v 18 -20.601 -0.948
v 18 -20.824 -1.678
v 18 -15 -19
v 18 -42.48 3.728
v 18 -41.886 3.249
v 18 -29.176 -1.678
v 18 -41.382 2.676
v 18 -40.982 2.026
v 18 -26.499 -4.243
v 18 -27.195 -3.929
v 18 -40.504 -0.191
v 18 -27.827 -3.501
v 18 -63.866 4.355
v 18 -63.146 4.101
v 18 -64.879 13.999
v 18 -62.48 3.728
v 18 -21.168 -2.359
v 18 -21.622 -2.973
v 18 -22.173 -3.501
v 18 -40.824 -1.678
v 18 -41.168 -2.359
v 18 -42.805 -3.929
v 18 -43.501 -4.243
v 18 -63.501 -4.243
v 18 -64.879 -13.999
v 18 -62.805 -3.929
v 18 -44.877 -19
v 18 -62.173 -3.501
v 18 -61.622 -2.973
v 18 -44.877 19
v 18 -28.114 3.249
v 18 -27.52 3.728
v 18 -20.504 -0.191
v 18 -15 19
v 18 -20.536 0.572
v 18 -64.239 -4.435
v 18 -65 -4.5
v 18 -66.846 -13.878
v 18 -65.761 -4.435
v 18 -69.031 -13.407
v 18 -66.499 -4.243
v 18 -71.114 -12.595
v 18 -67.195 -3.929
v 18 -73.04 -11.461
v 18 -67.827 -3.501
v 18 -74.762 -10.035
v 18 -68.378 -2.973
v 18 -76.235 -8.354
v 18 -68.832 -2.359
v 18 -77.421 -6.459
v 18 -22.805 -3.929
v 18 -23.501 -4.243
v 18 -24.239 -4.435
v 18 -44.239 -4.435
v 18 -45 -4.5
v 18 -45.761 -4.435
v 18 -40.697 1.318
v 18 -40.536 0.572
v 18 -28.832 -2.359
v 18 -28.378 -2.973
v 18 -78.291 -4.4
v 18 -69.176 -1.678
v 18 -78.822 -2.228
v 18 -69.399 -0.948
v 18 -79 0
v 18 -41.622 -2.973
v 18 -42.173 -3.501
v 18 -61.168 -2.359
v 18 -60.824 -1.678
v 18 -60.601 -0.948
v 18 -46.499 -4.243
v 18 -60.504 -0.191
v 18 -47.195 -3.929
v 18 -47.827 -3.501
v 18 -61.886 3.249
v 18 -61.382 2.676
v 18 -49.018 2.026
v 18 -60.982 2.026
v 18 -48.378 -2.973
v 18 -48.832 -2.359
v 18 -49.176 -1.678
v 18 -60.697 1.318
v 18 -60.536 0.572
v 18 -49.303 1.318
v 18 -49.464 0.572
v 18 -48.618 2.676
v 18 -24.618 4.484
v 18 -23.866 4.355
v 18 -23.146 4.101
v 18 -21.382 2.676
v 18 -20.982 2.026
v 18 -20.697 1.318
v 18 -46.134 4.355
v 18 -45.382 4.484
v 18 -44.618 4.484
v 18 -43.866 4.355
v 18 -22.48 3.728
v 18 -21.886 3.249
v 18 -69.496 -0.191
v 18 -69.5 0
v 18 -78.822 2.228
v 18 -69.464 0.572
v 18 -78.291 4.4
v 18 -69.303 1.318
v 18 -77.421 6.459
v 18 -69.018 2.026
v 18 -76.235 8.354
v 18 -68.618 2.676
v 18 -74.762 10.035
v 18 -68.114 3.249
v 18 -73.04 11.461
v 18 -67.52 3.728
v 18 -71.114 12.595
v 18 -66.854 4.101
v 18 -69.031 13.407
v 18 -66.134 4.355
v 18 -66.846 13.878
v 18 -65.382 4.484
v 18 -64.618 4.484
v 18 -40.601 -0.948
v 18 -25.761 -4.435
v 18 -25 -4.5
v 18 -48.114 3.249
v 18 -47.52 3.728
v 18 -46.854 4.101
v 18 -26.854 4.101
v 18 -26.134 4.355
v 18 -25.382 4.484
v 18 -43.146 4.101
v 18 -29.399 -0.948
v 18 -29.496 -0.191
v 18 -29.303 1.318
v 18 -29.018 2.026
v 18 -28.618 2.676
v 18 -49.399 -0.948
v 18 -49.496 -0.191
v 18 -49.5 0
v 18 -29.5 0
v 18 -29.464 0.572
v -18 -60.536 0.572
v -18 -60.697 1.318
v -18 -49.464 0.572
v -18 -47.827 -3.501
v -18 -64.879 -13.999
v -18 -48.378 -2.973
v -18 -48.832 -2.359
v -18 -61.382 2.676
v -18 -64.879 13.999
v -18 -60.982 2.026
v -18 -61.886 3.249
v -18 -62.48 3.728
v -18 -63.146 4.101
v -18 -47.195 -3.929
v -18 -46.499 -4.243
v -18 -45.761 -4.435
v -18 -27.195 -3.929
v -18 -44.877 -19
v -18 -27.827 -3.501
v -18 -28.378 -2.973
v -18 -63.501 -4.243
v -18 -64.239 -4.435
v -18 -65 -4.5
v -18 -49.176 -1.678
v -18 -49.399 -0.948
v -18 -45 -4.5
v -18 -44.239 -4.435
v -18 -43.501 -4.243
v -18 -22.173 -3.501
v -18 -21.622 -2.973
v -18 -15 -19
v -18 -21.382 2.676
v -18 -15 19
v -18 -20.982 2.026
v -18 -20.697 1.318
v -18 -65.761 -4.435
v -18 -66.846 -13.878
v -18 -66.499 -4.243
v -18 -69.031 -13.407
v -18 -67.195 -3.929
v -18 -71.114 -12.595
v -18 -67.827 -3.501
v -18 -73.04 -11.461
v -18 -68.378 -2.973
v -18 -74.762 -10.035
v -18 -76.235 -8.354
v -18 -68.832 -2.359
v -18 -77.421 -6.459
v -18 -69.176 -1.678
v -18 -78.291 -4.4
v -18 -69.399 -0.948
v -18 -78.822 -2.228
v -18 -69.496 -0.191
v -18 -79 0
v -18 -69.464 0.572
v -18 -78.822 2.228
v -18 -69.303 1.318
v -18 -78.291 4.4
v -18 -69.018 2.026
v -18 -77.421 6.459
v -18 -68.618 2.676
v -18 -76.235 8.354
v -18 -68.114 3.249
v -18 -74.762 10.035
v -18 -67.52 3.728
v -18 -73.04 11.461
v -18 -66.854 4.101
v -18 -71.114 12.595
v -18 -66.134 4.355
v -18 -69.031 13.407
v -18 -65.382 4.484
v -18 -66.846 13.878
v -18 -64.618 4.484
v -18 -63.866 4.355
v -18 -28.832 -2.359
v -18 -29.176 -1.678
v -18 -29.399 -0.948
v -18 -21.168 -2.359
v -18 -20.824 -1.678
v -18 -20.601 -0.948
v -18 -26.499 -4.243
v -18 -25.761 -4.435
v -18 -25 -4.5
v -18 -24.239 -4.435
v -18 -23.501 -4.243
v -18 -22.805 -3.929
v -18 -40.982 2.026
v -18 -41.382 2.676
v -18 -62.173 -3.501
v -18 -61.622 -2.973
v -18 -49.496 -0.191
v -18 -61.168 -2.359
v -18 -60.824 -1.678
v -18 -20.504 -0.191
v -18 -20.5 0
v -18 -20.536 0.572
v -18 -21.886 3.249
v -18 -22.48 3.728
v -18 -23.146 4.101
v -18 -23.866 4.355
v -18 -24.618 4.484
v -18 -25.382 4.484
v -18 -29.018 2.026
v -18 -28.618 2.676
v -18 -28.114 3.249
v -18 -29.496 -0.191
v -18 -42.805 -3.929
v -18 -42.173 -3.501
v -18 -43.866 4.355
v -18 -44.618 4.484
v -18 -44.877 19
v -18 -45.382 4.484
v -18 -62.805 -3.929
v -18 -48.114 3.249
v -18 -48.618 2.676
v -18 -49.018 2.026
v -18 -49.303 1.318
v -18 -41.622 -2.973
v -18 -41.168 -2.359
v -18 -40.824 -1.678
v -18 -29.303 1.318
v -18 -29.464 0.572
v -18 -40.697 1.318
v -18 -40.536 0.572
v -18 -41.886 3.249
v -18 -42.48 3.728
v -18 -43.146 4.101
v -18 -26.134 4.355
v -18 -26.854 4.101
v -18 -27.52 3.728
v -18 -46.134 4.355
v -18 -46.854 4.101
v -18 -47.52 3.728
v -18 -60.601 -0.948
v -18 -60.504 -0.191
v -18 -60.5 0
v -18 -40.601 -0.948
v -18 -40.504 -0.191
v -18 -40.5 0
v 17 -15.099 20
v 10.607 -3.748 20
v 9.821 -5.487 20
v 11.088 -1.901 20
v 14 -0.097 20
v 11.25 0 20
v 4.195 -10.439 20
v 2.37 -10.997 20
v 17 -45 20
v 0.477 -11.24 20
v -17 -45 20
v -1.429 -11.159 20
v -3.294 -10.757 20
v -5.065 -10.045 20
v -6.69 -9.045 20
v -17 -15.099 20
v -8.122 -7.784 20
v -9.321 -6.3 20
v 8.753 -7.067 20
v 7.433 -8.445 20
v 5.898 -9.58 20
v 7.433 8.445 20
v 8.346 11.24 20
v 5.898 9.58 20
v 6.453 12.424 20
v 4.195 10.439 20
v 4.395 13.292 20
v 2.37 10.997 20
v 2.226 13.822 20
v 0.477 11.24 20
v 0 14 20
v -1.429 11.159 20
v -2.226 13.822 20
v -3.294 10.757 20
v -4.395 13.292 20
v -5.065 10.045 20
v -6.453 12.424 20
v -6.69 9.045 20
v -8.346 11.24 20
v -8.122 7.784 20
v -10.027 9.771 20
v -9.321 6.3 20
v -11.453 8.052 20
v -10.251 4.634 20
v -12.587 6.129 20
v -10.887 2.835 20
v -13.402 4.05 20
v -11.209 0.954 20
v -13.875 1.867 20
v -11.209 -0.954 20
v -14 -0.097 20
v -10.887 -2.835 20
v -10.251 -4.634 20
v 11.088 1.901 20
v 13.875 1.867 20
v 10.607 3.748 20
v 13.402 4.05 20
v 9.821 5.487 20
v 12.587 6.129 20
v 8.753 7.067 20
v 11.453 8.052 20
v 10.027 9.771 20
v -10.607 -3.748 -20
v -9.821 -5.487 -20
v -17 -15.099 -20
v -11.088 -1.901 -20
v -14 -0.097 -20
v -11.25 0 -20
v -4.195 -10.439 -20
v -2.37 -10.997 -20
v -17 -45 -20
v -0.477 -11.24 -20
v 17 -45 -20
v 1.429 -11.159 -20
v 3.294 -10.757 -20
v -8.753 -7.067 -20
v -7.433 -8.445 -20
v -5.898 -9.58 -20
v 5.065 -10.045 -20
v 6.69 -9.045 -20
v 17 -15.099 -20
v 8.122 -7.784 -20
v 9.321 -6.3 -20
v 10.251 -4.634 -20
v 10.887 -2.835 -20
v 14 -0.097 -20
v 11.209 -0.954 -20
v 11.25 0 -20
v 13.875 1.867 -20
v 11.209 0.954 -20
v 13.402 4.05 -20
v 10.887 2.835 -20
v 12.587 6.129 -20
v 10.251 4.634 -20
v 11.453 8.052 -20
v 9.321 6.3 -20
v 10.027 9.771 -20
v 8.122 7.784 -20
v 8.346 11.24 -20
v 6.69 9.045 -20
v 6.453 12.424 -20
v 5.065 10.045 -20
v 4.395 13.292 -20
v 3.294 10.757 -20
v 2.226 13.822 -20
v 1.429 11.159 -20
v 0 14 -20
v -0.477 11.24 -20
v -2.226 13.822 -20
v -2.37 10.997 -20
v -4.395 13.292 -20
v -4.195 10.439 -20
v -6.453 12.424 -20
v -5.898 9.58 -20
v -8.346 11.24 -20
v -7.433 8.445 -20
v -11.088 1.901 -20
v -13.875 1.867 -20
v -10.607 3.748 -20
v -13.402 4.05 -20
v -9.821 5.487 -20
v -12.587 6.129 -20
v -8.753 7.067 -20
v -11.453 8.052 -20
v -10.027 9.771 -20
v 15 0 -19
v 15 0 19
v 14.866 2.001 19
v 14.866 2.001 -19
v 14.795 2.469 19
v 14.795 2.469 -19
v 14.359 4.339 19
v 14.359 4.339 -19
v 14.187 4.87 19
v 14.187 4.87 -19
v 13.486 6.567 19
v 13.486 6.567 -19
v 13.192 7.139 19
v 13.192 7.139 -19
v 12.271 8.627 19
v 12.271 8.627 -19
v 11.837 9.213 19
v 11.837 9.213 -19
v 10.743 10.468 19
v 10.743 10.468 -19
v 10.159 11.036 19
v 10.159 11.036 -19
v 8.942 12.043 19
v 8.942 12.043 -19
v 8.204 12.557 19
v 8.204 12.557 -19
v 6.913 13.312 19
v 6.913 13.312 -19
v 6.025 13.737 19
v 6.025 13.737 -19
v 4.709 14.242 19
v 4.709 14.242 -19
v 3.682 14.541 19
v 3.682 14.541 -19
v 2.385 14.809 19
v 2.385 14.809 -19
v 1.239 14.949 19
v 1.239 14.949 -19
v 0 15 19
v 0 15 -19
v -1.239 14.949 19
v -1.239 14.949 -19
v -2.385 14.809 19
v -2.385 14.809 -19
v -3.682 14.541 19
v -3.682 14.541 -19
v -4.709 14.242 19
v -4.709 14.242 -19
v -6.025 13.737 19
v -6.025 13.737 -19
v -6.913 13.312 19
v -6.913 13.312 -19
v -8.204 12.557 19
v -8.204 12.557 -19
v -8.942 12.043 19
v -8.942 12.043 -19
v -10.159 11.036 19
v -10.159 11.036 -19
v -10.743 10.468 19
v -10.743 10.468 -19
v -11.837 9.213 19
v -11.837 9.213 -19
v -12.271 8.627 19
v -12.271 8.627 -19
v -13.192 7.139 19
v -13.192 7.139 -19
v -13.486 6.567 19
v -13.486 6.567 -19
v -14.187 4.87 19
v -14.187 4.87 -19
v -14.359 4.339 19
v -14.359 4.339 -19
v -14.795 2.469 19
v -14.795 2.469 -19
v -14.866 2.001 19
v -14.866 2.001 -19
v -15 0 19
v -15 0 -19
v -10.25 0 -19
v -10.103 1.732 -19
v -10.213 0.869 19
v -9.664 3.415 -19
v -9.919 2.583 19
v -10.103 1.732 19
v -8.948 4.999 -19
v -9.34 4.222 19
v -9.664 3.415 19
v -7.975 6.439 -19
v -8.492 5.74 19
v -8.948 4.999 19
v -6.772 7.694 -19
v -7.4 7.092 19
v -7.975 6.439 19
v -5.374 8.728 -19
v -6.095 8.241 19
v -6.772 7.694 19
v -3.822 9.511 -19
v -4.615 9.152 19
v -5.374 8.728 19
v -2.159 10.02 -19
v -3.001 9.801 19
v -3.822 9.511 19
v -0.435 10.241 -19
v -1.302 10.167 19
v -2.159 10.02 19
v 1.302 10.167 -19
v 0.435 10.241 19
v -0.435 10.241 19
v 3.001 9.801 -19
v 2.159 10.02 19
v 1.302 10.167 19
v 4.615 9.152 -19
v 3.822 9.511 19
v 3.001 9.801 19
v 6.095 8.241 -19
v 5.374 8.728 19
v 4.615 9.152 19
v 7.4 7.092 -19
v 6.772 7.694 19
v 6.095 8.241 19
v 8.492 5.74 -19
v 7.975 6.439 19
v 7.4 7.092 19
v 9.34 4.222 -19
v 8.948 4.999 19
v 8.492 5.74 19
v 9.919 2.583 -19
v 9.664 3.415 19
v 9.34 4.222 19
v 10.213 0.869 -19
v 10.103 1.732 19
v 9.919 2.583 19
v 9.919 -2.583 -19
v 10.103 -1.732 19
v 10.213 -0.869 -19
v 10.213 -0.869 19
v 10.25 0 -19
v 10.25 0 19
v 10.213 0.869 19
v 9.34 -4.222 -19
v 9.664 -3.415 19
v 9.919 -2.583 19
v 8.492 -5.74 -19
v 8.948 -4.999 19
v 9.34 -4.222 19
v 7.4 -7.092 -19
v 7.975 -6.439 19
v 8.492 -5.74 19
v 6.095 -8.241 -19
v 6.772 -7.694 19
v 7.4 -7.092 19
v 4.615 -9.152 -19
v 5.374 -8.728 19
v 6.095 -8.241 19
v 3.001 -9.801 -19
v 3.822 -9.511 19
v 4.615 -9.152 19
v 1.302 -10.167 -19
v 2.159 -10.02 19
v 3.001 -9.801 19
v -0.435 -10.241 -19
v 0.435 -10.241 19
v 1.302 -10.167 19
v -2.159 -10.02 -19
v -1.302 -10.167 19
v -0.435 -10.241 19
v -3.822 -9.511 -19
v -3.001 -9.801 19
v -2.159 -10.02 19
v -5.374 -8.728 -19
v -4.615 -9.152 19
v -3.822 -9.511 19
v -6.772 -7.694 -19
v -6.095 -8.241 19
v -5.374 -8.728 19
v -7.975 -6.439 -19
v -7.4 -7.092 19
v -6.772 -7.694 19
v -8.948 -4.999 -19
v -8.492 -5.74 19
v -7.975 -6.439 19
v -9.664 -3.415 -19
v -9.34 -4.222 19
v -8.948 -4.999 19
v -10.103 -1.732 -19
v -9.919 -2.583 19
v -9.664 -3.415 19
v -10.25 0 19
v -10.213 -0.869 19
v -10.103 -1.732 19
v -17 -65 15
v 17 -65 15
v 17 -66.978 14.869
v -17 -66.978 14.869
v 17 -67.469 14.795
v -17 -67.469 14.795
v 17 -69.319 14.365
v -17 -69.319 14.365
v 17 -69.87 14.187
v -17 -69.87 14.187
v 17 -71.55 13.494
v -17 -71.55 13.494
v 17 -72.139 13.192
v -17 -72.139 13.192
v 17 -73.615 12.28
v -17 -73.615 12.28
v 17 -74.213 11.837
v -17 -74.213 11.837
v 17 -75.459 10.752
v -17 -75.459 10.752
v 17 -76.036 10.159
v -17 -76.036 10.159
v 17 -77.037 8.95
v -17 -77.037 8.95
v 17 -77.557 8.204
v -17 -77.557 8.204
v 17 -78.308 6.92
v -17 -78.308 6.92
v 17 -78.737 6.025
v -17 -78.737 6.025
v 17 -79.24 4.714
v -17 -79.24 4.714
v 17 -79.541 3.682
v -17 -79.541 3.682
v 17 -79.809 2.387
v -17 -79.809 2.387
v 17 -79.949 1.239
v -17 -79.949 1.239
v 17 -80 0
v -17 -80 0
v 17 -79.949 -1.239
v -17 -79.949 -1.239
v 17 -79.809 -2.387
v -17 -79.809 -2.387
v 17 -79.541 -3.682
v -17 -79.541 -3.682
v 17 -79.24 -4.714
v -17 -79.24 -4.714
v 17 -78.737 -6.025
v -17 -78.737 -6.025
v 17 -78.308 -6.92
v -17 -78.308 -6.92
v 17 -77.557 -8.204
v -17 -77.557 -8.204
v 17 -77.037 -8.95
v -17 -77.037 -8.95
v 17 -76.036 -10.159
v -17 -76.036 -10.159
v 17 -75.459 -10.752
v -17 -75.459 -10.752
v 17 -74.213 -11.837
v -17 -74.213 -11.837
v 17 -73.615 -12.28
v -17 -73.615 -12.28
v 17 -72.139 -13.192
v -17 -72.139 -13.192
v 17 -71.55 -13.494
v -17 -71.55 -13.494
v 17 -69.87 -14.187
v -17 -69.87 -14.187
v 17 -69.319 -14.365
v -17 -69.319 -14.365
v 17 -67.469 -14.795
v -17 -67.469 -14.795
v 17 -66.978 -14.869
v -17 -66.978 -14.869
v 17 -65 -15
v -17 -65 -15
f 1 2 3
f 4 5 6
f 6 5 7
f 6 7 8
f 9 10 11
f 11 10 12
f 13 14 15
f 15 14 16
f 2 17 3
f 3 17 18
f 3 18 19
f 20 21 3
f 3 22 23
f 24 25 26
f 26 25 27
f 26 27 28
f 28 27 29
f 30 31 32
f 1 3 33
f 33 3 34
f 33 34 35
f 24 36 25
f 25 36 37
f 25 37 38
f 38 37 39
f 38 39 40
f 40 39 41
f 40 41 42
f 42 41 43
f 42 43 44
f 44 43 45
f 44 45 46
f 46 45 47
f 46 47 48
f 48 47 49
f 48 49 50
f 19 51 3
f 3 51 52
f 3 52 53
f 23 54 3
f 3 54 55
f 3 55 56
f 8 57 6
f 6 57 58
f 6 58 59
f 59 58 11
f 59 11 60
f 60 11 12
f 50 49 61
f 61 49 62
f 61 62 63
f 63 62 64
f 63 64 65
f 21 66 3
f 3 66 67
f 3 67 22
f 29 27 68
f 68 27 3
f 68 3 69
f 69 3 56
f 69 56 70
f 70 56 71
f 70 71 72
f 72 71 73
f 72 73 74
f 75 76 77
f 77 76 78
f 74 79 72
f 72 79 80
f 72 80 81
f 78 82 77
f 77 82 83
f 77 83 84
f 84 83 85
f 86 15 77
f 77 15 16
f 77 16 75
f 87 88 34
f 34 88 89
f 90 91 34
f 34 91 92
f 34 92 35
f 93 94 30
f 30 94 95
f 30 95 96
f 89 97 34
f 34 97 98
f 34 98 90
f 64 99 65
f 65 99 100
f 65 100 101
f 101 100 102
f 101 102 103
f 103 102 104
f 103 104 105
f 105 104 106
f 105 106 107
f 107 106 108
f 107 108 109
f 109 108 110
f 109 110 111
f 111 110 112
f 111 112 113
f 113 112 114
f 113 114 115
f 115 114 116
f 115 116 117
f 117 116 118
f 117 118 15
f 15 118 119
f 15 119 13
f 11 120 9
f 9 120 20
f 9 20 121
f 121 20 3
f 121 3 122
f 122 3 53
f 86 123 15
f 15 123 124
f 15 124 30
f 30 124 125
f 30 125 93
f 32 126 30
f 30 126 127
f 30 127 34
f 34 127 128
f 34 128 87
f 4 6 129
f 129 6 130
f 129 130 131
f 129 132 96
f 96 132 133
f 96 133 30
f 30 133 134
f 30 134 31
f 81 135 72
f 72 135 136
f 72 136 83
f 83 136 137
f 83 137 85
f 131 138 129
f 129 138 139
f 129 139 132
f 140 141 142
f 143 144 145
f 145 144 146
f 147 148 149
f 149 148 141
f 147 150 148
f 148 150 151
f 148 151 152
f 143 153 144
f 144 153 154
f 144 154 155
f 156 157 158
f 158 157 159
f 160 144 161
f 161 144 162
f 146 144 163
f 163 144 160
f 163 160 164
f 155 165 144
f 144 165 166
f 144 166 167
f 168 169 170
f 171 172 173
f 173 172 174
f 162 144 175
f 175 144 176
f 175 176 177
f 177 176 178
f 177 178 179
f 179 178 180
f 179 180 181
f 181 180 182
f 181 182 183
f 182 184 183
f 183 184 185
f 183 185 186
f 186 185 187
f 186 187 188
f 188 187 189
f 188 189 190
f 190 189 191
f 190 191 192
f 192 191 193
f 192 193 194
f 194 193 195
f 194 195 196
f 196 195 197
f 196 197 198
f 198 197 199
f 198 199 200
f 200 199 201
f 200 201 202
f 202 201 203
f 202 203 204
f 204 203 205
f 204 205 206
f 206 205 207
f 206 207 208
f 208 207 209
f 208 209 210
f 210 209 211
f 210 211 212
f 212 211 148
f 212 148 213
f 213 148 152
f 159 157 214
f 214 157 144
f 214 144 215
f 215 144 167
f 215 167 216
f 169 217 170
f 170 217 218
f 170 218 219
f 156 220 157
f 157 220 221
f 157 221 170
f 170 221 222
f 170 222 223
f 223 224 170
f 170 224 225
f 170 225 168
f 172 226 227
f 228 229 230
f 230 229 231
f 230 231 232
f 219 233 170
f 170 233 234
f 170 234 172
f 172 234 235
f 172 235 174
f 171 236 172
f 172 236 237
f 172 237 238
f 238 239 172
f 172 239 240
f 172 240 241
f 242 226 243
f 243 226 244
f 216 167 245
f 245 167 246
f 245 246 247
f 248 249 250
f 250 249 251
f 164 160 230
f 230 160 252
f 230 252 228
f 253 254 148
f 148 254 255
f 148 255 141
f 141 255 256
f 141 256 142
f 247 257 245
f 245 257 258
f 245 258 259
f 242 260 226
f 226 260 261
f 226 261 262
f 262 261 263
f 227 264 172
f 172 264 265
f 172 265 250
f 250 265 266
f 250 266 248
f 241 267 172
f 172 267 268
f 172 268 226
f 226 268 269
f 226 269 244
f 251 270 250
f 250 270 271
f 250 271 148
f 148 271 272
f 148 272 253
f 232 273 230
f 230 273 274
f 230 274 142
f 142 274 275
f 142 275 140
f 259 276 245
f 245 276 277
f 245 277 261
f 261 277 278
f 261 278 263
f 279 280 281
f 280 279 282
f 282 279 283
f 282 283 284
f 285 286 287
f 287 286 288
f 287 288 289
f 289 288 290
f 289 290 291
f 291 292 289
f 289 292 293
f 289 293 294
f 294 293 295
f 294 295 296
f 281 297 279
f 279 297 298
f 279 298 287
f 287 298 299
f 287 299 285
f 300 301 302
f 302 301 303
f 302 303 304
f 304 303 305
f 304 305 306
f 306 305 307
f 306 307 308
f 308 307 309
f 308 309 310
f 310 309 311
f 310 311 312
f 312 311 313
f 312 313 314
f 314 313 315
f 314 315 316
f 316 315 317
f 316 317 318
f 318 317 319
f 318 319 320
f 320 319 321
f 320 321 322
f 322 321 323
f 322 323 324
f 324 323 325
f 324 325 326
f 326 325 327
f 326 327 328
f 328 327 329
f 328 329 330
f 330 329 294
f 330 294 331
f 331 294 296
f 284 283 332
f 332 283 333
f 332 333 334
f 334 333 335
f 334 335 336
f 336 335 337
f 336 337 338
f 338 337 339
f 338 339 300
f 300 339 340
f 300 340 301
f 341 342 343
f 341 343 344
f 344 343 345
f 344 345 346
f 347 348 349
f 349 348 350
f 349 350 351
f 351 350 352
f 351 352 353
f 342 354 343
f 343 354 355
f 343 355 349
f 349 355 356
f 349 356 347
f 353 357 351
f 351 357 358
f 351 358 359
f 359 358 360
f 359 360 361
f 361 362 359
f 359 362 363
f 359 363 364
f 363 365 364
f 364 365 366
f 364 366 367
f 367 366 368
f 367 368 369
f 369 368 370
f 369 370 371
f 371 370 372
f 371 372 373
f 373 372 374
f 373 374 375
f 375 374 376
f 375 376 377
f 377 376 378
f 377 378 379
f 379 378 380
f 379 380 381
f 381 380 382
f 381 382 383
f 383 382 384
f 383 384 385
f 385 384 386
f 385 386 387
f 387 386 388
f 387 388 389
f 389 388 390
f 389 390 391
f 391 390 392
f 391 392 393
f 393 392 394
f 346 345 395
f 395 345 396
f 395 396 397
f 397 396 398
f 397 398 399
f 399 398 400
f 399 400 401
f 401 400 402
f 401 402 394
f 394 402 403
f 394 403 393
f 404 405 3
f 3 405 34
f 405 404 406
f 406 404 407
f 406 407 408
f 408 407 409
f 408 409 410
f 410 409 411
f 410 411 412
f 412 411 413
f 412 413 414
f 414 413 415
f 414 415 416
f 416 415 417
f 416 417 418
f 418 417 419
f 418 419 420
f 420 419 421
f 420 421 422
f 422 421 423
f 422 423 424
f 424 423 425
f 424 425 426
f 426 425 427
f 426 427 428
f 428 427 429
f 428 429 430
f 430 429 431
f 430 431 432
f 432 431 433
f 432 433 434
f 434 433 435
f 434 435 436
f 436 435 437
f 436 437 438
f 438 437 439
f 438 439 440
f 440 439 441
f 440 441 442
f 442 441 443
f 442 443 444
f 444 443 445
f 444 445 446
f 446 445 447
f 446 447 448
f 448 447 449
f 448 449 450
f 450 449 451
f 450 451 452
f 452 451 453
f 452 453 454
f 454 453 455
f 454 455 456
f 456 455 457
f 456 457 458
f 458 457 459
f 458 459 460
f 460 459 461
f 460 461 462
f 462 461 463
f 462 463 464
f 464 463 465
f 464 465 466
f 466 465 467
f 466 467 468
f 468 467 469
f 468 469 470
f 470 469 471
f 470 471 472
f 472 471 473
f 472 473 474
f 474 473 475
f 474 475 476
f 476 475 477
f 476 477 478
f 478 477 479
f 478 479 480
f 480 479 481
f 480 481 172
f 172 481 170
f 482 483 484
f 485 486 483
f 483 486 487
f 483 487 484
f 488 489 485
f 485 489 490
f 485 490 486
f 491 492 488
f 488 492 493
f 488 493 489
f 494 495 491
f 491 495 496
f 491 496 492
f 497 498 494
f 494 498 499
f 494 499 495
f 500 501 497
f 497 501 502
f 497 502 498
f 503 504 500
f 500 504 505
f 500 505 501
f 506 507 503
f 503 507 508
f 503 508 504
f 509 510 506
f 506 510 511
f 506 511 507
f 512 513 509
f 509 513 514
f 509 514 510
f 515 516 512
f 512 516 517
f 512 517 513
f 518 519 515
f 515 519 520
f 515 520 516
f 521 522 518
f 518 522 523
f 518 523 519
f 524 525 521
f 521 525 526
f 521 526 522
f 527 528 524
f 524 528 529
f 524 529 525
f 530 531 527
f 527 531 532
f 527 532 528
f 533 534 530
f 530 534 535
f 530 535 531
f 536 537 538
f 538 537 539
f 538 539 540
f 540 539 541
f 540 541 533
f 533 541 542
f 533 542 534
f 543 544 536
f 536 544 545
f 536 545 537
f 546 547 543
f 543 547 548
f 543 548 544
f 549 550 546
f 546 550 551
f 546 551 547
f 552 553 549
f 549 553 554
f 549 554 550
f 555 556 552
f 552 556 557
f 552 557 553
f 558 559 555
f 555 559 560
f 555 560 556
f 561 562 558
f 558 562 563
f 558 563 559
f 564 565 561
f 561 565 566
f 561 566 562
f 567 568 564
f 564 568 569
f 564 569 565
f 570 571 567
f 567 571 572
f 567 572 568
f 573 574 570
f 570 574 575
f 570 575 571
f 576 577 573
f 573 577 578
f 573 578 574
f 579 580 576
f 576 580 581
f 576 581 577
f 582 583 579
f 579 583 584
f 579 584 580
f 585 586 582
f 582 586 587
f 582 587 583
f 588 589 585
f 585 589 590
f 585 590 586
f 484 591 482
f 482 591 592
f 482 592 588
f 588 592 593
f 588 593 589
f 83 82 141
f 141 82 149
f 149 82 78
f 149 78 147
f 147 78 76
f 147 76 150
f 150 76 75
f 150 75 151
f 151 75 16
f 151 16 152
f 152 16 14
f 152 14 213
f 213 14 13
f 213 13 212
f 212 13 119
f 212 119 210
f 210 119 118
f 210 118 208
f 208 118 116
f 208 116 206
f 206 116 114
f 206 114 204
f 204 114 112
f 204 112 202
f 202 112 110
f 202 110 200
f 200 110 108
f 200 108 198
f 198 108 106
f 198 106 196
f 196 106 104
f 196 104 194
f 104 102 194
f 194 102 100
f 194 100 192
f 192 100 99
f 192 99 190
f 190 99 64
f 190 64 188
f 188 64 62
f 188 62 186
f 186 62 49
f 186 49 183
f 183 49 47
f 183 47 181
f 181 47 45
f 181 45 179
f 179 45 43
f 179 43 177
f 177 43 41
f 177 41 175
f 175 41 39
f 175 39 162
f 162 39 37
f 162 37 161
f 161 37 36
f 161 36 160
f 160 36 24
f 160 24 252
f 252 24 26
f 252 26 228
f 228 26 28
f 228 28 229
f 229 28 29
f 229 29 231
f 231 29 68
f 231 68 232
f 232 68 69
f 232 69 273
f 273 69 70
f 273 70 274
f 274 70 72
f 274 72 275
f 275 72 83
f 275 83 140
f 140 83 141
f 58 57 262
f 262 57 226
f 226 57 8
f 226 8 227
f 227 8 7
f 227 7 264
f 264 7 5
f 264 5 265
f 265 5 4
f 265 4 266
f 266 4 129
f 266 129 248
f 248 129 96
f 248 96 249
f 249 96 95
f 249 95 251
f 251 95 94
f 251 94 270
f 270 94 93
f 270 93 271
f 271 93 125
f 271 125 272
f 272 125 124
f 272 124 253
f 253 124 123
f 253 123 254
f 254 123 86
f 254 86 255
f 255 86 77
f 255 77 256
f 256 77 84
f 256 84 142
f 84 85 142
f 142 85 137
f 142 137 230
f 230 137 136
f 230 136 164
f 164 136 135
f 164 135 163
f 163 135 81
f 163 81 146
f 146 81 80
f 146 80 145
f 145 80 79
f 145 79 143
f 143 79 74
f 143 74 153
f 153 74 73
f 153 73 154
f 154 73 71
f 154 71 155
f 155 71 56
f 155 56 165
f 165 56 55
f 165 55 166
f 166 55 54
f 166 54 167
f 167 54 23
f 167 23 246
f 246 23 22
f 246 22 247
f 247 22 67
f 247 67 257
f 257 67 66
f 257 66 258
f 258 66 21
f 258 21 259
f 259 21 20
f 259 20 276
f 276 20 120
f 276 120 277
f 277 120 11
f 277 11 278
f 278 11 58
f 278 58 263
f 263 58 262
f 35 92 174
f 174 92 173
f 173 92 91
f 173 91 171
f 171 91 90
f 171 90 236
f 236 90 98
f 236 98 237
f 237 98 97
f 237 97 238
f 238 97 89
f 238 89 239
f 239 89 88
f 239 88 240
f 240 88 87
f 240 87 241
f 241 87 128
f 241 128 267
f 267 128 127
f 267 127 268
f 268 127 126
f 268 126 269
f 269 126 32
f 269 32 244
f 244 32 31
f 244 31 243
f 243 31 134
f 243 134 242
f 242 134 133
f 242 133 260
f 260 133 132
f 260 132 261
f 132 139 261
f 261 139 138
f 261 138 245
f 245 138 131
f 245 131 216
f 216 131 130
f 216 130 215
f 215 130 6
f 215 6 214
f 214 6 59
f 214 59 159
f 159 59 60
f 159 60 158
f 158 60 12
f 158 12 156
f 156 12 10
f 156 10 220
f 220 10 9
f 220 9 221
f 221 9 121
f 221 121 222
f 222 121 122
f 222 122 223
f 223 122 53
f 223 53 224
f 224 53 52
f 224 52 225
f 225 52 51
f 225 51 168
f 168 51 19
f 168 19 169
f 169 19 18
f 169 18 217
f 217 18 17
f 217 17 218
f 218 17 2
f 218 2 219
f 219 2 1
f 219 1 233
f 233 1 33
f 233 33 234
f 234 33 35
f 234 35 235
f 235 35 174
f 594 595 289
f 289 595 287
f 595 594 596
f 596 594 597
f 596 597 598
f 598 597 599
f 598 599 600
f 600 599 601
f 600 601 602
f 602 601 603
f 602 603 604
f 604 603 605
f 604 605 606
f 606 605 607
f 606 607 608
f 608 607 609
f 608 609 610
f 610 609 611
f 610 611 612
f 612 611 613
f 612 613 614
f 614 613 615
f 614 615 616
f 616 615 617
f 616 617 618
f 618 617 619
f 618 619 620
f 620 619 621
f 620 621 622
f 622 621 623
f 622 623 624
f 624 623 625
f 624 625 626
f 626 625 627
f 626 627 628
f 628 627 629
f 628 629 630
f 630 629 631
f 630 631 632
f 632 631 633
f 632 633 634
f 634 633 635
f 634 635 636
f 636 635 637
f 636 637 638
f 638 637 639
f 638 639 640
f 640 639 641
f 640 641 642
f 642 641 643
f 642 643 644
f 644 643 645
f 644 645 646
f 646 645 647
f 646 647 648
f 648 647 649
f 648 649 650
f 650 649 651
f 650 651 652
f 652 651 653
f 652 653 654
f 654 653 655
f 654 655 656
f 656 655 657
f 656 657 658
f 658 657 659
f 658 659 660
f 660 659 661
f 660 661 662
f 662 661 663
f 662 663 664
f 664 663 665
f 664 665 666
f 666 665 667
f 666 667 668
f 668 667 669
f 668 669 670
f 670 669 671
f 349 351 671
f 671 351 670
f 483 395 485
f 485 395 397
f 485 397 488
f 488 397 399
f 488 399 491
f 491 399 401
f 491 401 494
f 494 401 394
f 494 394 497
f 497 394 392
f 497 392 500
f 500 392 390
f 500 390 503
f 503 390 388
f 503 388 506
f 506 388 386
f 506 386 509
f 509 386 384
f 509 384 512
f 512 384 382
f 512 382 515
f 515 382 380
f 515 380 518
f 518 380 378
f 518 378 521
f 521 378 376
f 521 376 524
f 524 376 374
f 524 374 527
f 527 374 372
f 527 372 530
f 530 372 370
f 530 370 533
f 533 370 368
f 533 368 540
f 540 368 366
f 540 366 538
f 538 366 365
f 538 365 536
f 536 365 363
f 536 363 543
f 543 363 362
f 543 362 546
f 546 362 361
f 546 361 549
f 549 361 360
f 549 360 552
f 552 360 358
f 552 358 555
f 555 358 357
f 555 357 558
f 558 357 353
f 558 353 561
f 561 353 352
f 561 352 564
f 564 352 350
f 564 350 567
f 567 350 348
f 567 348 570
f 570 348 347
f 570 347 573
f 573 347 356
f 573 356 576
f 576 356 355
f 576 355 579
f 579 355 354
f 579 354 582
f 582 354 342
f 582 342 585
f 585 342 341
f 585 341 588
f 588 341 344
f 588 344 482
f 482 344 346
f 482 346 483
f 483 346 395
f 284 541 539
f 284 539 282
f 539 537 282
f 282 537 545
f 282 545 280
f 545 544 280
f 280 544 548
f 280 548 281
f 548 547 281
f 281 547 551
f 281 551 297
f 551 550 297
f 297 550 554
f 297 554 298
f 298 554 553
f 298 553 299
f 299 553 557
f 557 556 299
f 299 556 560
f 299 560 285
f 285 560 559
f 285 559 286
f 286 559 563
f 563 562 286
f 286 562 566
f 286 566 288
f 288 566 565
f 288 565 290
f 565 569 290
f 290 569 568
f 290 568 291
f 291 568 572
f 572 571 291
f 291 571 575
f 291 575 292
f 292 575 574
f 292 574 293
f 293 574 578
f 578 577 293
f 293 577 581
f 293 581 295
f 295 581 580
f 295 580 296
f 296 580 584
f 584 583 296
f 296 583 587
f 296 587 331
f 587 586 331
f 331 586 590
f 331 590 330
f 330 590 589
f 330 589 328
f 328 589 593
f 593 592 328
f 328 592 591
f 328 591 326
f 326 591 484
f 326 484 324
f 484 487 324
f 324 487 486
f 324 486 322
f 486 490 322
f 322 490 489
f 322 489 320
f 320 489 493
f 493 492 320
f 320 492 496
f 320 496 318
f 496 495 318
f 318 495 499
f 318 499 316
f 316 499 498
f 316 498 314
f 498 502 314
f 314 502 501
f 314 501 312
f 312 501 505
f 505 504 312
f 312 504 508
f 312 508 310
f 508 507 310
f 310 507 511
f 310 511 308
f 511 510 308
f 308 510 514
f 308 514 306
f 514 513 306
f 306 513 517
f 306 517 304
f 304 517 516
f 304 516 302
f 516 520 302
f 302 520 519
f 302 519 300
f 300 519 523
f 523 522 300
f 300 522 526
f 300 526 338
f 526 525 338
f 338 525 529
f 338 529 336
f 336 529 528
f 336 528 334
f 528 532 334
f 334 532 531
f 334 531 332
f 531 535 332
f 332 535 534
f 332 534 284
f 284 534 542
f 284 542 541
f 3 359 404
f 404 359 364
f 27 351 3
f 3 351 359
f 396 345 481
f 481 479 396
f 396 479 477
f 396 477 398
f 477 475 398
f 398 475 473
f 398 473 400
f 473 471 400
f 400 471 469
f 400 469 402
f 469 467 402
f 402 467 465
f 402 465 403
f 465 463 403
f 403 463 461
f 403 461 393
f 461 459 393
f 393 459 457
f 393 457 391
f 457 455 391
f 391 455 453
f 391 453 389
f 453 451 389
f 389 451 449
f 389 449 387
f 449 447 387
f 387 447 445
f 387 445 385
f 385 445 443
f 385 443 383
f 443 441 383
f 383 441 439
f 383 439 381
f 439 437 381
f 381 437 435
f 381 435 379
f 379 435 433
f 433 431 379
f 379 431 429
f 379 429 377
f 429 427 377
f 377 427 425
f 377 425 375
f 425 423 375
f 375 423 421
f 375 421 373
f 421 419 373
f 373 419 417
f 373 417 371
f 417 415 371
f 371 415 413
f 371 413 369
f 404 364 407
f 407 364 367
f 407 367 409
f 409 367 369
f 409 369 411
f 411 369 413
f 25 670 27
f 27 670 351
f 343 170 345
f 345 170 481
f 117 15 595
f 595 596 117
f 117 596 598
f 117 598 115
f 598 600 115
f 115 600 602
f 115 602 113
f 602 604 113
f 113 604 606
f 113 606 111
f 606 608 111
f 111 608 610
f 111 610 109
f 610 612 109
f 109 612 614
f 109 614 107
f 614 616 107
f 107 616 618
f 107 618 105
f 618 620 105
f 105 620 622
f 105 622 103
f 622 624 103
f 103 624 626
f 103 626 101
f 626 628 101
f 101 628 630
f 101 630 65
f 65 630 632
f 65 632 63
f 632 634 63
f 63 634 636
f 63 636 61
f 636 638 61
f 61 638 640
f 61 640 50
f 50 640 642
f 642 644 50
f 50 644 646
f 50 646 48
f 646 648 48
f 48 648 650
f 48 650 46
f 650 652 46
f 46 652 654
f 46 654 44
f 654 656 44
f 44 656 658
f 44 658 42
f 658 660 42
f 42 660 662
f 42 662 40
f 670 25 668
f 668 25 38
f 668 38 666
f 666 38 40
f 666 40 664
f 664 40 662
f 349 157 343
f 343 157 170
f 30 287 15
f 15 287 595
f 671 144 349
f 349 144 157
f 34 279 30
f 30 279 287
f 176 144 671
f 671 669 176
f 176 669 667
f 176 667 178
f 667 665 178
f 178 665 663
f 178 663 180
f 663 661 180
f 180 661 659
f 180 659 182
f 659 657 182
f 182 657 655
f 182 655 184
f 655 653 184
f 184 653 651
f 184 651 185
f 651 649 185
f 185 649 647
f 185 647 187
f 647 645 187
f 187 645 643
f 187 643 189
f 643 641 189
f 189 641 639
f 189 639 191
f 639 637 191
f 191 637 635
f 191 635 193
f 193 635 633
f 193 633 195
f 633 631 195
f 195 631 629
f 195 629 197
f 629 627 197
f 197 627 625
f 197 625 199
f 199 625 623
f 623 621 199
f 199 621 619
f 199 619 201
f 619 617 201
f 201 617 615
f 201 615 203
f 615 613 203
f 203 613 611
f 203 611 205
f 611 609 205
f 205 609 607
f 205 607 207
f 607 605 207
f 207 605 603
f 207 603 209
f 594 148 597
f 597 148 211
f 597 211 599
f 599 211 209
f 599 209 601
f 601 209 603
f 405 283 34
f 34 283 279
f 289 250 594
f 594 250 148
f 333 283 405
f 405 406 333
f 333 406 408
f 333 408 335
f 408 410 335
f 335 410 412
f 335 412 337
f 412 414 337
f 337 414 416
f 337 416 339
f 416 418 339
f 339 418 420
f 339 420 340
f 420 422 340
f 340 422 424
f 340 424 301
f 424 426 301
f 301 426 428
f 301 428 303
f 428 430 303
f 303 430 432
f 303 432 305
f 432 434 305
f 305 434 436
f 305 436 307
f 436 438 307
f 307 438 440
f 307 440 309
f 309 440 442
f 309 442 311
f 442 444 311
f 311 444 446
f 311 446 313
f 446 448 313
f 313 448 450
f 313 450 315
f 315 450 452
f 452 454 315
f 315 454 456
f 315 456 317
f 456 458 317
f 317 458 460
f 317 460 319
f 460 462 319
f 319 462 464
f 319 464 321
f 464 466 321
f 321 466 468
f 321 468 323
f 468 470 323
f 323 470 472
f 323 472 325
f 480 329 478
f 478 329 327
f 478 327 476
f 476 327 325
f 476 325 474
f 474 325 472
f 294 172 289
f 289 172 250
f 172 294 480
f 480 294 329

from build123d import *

# Parameters (mm, degrees)
SKETCH_1_R               = 10.25
EXTRUDE_1_DEPTH          = 20
SKETCH_2_R               = 4.5
CUT_EXTRUDE_1_DEPTH      = 20
CUT_EXTRUDE_2_DEPTH      = 1
CUT_EXTRUDE_2_DEPTH_BACK = 37
CHAMFER_1_SIZE           = 1


with BuildPart() as part:
    # 草图1 → 凸台-拉伸1 (new body, symmetric)
    with BuildSketch(Plane.XY):
        with BuildLine():
            Line((0, -80), (18, -80))
            Line((18, -80), (18, -15))
            Line((18, -15), (15, 0))
            ThreePointArc((15, 0), (0, 15), (-15, 0))
            Line((-15, 0), (-18, -15))
            Line((-18, -15), (-18, -80))
            Line((-18, -80), (0, -80))
        make_face()
        Circle(SKETCH_1_R, mode=Mode.SUBTRACT)
    extrude(amount=EXTRUDE_1_DEPTH, both=True)

    # 草图2 → 切除-拉伸1 (cut, symmetric)
    with BuildSketch(Plane(origin=(0, 0, 0), x_dir=(0, 0, -1), z_dir=(1, 0, 0))):
        with Locations((0, -45)):
            Circle(SKETCH_2_R)
        with Locations((0, -25)):
            Circle(SKETCH_2_R)
        with Locations((0, -65)):
            Circle(SKETCH_2_R)
    extrude(amount=CUT_EXTRUDE_1_DEPTH, both=True, mode=Mode.SUBTRACT)

    # 草图7 → 切除-拉伸2 (cut, two sides)
    with BuildSketch(Plane(origin=(18, 0, 0), x_dir=(0, 0, -1), z_dir=(1, 0, 0))) as cut_extrude_2_sk:
        with BuildLine():
            Line((-15, -65), (-20, -45))
            Line((-20, -45), (-20, -80))
            Line((-20, -80), (1.38e-07, -80))
            ThreePointArc((1.38e-07, -80), (-10.606601669, -75.606601767), (-15, -65))
        make_face()
        with BuildLine():
            ThreePointArc((15, -65), (10.606601767, -75.606601669), (1.38e-07, -80))
            Line((1.38e-07, -80), (20, -80))
            Line((20, -80), (20, -45))
            Line((20, -45), (15, -65))
        make_face()
    extrude(amount=CUT_EXTRUDE_2_DEPTH, mode=Mode.SUBTRACT)
    extrude(cut_extrude_2_sk.sketch, amount=-CUT_EXTRUDE_2_DEPTH_BACK, mode=Mode.SUBTRACT)

    # 倒角1
    chamfer_1_edges = [part.edges().sort_by_distance(p)[0] for p in [
        (16.5, -7.5, 20),
        (-10.25, 0, -20),
        (-10.25, 0, 20),
        (0, 15, 20),
        (-16.5, -7.5, 20),
        (-18, -30, 20),
        (-18, -55, -17.5),
        (-18, -80, 0),
        (-18, -55, 17.5),
        (18, -30, -20),
        (18, -30, 20),
        (18, -55, 17.5),
        (18, -80, 0),
        (18, -55, -17.5),
        (-18, -30, -20),
        (-16.5, -7.5, -20),
        (0, 15, -20),
        (16.5, -7.5, -20),
    ]]
    chamfer(chamfer_1_edges, length=CHAMFER_1_SIZE)


solid = part.part
